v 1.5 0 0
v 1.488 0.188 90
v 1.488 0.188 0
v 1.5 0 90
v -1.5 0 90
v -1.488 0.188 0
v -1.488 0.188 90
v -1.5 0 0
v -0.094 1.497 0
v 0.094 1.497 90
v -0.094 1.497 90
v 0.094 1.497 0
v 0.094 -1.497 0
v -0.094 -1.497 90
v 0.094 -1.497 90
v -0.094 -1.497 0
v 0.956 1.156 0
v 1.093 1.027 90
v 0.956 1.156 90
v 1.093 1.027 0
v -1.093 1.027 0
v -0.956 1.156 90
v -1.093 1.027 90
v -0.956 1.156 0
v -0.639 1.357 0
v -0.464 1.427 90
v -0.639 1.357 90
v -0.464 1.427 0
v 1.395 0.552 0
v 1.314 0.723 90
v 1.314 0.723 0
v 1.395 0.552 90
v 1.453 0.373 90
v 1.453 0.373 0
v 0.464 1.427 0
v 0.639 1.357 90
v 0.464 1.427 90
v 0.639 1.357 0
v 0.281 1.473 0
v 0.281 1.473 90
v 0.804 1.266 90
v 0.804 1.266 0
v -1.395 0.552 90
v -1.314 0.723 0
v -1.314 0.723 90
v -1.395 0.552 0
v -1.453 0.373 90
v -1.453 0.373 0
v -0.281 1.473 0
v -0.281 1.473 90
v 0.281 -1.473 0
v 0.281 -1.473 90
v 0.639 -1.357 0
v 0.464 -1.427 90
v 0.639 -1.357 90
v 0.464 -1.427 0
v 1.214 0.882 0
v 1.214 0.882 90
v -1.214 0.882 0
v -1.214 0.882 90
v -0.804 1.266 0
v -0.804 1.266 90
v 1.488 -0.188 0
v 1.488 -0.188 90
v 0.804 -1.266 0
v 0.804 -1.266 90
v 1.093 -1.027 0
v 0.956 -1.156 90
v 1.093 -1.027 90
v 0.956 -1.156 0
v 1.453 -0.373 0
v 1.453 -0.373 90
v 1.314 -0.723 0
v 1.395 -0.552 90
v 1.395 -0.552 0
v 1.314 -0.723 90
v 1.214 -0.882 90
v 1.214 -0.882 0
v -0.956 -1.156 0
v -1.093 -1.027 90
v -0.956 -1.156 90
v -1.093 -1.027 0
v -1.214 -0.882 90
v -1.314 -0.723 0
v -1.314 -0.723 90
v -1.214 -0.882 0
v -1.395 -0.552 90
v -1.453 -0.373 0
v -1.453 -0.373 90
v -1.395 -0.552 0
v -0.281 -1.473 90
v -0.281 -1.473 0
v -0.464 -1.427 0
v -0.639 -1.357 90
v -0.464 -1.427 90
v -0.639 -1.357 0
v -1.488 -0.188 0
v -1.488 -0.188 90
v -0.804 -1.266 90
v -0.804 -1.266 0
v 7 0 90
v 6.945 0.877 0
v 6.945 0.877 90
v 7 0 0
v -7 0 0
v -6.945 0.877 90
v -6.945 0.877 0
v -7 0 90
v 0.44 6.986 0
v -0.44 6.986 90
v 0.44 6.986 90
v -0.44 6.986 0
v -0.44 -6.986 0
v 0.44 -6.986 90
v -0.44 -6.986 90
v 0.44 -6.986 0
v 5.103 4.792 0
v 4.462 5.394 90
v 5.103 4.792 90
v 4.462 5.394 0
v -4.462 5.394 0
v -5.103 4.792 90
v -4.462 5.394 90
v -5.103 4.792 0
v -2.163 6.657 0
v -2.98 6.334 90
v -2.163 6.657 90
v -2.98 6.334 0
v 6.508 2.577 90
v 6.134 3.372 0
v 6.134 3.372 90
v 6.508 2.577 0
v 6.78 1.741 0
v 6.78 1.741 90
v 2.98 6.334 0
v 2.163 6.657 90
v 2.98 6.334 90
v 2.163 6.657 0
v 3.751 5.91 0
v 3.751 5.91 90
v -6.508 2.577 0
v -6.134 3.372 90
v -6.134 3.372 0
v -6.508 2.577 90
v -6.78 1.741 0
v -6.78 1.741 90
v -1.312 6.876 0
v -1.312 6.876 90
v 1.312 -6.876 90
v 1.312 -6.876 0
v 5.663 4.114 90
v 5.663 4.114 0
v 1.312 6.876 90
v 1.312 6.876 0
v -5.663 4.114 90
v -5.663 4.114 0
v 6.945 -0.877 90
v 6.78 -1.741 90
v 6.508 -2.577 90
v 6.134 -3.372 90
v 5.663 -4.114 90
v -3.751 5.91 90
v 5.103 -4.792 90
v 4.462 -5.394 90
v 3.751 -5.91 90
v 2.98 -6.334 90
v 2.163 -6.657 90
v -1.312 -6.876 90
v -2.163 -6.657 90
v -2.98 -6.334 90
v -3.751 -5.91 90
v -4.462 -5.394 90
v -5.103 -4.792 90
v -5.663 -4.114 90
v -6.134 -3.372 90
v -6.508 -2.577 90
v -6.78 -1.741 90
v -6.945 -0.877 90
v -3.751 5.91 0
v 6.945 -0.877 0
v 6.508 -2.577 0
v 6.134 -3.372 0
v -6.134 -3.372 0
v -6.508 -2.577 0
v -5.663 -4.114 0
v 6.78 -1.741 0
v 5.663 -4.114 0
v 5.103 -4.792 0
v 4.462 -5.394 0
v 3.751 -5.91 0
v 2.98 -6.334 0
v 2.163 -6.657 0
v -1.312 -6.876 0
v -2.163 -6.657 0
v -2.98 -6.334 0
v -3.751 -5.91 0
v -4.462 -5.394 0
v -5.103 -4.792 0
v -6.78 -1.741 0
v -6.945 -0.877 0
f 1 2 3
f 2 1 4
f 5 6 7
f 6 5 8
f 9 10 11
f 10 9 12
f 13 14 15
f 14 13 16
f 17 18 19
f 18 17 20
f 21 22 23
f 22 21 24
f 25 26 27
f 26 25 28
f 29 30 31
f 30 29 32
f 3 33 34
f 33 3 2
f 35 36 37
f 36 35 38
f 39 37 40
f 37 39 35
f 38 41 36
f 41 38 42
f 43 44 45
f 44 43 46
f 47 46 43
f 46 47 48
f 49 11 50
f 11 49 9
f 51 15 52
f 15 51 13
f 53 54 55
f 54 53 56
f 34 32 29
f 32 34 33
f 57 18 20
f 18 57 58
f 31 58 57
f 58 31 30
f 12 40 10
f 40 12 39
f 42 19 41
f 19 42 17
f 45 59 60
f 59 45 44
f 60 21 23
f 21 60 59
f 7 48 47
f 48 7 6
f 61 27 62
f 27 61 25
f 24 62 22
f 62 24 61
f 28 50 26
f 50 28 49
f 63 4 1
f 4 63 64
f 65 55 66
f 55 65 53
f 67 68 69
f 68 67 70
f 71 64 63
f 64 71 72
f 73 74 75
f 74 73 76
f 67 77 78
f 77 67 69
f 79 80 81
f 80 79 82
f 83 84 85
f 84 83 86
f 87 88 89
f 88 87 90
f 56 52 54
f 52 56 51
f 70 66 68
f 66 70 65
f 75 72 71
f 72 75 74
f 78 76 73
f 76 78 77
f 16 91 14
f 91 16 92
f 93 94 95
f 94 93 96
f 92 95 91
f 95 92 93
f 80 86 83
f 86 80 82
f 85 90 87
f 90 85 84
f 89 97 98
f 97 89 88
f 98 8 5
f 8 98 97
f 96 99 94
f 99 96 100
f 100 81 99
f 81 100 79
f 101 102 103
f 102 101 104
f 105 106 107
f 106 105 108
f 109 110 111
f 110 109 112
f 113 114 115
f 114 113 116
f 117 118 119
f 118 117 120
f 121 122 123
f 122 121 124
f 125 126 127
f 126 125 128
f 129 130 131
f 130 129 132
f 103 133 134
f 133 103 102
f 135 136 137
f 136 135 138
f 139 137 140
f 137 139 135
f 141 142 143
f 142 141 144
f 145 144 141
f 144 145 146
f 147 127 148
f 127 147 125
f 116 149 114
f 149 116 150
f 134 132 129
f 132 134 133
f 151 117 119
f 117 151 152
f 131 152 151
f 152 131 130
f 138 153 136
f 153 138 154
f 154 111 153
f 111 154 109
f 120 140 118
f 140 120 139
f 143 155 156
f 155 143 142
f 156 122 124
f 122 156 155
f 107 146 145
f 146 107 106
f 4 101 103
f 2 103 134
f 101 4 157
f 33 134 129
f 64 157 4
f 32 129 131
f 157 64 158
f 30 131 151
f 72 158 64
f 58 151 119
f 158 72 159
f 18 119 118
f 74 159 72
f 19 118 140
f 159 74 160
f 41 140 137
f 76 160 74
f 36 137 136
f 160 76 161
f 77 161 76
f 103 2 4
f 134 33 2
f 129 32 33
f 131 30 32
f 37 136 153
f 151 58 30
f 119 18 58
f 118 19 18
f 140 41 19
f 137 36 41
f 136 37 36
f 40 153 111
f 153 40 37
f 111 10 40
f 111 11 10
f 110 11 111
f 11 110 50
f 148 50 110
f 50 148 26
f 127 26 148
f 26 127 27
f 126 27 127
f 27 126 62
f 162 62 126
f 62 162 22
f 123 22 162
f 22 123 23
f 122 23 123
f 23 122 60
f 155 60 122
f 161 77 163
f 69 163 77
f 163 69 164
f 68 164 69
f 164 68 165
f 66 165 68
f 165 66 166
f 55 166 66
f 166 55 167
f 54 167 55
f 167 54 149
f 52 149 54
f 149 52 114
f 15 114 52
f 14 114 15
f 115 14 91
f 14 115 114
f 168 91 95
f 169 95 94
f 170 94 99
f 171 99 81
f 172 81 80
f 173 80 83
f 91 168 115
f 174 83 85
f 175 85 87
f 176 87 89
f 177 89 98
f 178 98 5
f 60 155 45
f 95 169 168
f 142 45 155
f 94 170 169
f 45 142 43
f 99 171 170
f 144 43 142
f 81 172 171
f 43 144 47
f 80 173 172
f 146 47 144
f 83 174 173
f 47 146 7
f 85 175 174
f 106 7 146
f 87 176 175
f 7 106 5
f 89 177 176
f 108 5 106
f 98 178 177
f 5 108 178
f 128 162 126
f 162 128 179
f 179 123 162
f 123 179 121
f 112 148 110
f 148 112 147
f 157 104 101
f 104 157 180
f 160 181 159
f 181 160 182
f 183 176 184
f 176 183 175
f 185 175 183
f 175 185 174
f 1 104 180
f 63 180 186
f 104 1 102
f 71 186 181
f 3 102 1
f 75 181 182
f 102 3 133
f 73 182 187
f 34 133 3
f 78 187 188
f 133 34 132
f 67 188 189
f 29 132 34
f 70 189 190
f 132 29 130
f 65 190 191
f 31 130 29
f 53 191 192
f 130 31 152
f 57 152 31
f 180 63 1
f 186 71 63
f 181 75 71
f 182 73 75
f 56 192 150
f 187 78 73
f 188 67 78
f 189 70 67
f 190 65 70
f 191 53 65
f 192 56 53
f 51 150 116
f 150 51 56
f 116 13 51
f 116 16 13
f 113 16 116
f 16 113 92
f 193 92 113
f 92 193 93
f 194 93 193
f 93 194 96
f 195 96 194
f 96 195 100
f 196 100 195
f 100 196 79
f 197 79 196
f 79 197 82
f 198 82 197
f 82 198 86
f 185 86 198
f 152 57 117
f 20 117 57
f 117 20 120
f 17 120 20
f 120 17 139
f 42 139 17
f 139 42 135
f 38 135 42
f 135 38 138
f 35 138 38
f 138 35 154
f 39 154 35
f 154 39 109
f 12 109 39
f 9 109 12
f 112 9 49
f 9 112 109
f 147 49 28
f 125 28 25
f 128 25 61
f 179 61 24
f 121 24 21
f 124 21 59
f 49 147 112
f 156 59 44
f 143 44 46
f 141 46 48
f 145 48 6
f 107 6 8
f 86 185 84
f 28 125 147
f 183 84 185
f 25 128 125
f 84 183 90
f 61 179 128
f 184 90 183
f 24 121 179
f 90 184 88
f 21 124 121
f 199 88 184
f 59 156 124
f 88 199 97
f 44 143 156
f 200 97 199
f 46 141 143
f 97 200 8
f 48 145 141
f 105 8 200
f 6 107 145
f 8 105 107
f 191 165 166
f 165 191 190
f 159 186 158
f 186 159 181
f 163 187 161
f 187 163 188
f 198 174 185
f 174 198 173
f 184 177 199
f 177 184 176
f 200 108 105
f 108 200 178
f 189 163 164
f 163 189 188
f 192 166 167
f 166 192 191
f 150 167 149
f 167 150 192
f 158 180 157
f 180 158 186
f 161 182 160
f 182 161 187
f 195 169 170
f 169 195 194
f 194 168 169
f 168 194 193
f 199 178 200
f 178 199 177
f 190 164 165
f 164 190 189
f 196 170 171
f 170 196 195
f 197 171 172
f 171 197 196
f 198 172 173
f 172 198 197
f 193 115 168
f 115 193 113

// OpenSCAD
$fn = 50;


difference() {
	union() {
		cylinder(h = 90, r = 7.0000000000);
	}
	union() {
		translate(v = [0, 0, -100]) {
			cylinder(h = 200, r = 1.5000000000);
		}
		translate(v = [0, 0, -100]) {
			cylinder(h = 200, r = 1.5000000000);
		}
	}
}
